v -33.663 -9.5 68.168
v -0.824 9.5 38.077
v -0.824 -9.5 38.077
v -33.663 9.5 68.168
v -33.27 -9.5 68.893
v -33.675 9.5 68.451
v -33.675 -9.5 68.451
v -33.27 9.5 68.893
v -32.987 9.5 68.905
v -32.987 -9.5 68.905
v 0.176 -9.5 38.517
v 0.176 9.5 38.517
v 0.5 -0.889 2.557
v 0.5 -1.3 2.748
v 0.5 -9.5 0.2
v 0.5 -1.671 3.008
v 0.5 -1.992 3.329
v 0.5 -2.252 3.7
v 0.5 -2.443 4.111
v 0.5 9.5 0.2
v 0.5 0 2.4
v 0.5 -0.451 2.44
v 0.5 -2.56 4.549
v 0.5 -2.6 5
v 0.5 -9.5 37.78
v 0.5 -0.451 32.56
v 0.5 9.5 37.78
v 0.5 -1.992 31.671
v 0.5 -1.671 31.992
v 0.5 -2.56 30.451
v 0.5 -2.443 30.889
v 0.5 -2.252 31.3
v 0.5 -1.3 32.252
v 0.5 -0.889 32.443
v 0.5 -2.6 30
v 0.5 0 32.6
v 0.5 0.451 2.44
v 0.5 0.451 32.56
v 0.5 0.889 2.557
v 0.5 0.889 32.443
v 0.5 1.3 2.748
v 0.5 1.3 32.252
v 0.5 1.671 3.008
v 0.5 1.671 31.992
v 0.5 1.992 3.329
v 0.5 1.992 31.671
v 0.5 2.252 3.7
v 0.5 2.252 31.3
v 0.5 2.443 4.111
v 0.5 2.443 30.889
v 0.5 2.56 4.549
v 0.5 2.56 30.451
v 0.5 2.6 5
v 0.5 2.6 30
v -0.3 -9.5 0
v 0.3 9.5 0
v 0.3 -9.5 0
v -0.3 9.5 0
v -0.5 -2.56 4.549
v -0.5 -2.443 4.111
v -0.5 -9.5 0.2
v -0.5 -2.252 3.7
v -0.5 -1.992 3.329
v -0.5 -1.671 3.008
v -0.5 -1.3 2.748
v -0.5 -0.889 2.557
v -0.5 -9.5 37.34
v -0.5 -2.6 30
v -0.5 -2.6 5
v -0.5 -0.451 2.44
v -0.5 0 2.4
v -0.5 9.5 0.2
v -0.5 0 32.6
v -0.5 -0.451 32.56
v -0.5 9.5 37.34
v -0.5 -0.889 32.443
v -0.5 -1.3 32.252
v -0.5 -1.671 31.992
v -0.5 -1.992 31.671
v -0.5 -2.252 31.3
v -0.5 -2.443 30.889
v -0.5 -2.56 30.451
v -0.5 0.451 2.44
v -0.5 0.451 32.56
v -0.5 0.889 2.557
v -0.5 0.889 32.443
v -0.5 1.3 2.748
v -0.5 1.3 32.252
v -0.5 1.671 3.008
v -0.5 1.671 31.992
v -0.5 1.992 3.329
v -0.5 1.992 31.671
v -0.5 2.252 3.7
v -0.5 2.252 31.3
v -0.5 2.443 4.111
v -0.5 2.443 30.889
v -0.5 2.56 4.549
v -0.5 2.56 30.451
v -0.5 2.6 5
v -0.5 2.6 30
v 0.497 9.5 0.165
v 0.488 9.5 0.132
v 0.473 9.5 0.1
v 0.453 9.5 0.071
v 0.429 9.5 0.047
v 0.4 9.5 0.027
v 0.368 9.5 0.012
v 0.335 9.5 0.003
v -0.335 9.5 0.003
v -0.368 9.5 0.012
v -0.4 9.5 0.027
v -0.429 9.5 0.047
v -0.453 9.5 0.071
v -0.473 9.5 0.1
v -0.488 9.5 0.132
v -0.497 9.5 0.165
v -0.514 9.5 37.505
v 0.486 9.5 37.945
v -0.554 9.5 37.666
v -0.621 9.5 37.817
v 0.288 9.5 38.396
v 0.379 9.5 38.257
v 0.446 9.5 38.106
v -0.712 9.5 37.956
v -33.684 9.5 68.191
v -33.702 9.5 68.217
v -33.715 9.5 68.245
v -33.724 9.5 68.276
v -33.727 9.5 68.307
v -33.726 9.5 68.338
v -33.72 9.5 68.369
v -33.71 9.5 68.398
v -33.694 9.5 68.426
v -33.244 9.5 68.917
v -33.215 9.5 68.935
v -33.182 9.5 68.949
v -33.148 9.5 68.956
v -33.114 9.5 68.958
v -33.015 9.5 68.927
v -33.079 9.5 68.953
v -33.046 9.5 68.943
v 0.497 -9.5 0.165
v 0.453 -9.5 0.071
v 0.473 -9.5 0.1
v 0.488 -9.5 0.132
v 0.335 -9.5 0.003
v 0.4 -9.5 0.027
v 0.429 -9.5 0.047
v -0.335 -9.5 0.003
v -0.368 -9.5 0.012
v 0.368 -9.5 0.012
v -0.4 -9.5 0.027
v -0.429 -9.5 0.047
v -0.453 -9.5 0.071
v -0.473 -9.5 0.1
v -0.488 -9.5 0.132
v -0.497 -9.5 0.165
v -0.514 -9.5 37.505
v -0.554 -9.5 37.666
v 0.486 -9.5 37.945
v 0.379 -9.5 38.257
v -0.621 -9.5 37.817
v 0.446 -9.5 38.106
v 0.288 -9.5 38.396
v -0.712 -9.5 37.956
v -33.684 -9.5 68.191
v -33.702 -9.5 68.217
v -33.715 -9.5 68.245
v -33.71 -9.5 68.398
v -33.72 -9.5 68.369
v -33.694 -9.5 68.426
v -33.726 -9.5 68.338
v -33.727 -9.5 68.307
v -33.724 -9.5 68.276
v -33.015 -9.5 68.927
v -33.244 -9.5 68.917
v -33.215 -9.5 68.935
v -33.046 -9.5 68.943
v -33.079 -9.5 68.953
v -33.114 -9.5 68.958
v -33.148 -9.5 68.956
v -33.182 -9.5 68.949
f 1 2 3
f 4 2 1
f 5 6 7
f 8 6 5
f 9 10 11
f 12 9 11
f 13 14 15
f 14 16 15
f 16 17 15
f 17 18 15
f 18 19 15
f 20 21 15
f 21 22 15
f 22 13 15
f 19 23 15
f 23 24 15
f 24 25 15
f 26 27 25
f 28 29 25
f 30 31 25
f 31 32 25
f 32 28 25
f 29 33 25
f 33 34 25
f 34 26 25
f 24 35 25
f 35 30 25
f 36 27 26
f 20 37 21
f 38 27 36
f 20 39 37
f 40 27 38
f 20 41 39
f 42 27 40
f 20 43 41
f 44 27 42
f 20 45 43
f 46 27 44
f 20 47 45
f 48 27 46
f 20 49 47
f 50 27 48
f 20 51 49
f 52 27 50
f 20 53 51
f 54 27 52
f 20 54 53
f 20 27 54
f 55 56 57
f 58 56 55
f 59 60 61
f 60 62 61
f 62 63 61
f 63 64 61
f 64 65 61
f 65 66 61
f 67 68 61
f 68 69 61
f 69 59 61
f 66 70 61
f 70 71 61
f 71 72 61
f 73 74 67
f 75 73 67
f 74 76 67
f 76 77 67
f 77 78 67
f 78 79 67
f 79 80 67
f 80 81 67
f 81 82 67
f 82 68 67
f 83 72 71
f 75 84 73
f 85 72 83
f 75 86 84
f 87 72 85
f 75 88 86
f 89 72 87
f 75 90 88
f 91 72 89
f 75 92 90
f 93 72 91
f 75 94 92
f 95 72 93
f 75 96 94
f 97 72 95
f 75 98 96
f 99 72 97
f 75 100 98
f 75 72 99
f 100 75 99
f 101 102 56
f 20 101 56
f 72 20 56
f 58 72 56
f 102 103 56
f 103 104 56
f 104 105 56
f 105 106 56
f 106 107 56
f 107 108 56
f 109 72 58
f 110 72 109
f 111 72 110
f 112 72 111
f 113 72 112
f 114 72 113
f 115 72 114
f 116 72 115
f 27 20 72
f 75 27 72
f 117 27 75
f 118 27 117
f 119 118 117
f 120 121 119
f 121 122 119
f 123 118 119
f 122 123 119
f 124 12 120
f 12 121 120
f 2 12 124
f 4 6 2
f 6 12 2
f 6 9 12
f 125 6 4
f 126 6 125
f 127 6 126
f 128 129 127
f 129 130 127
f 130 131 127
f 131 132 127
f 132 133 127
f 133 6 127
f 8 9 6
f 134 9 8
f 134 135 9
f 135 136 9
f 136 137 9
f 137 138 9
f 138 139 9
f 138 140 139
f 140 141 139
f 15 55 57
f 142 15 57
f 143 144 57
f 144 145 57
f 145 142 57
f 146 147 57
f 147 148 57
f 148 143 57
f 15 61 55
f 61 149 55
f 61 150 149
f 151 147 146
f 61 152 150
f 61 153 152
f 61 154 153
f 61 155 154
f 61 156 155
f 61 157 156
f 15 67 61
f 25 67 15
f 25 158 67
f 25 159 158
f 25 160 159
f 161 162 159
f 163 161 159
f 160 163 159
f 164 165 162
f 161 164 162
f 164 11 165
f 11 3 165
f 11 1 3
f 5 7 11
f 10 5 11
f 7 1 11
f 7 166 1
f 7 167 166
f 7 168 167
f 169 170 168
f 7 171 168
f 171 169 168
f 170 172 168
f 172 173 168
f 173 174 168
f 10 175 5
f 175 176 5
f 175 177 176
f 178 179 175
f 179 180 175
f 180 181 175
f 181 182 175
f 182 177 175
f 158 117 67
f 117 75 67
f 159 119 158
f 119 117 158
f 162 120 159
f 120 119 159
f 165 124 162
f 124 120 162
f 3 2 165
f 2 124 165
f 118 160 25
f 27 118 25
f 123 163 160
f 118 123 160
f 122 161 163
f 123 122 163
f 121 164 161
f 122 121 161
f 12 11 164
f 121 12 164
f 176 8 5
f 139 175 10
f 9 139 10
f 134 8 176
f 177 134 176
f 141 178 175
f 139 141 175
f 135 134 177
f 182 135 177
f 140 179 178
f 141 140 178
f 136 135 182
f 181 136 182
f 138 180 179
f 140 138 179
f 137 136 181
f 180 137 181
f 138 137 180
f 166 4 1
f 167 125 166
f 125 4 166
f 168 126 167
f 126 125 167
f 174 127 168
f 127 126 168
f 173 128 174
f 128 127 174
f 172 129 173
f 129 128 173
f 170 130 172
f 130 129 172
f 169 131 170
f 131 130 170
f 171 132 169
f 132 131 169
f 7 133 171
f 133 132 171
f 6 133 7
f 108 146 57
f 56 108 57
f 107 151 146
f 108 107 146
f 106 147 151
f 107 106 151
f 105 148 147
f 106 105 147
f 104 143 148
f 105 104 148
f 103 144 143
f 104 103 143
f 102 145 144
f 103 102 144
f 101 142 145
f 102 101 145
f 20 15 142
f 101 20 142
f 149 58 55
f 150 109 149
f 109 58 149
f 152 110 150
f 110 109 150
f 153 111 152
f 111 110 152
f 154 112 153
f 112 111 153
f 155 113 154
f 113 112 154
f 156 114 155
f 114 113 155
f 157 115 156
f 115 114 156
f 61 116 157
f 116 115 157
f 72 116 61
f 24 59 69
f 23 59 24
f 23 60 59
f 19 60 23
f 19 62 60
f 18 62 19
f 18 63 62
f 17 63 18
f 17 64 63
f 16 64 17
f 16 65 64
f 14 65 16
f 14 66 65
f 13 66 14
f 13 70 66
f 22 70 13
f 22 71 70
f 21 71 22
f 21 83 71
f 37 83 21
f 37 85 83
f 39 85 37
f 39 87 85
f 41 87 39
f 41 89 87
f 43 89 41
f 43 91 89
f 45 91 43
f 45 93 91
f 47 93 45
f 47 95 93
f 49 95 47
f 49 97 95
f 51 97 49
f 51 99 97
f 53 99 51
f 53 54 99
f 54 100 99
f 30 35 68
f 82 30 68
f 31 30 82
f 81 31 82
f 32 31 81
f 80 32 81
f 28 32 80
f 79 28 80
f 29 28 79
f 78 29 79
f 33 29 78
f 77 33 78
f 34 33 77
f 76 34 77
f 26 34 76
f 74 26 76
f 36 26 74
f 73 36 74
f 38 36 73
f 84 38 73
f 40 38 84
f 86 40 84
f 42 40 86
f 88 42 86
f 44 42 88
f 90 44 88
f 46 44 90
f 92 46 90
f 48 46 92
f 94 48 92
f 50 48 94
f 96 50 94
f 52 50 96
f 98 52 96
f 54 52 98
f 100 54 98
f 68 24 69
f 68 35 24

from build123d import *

# Parameters (mm, degrees)
EXTRUDE_THIN1_DEPTH = 9.5
FILLET1_R           = 1
FILLET2_R           = 0.2
CUT_EXTRUDE1_DEPTH  = 2


with BuildPart() as part:
    # Sketch1 → Extrude-Thin1 (new body, symmetric)
    with BuildSketch(Plane(origin=(0, 0, 0), x_dir=(1, 0, 0), z_dir=(0, 1, 0))):
        Polygon((-0.5, 0), (-0.5, -37.779994735), (-33.810186195, -68.303156757), (-33.134595987, -69.040434094), (0.5, -38.220005265), (0.5, 0), align=None)
    extrude(amount=EXTRUDE_THIN1_DEPTH, both=True)

    # Fillet1
    fillet1_edges = [part.edges().sort_by_distance(p)[0] for p in [
        (-0.5, 0, 37.779994735),
        (0.5, 0, 38.220005265),
    ]]
    fillet(fillet1_edges, radius=FILLET1_R)

    # Fillet2
    fillet2_edges = [part.edges().sort_by_distance(p)[0] for p in [
        (-33.810186195, 0, 68.303156757),
        (-0.5, 0, 0),
        (0.5, 0, 0),
        (-33.134595987, 0, 69.040434094),
    ]]
    fillet(fillet2_edges, radius=FILLET2_R)

    # Sketch2 → Cut-Extrude1 (cut, through all)
    with BuildSketch(Plane.ZY.offset(0.5)):
        with BuildLine():
            Line((5, 2.6), (30, 2.6))
            ThreePointArc((30, 2.6), (32.6, 0), (30, -2.6))
            Line((30, -2.6), (5, -2.6))
            ThreePointArc((5, -2.6), (2.4, 0), (5, 2.6))
        make_face()
    extrude(amount=-CUT_EXTRUDE1_DEPTH, mode=Mode.SUBTRACT)


solid = part.part
